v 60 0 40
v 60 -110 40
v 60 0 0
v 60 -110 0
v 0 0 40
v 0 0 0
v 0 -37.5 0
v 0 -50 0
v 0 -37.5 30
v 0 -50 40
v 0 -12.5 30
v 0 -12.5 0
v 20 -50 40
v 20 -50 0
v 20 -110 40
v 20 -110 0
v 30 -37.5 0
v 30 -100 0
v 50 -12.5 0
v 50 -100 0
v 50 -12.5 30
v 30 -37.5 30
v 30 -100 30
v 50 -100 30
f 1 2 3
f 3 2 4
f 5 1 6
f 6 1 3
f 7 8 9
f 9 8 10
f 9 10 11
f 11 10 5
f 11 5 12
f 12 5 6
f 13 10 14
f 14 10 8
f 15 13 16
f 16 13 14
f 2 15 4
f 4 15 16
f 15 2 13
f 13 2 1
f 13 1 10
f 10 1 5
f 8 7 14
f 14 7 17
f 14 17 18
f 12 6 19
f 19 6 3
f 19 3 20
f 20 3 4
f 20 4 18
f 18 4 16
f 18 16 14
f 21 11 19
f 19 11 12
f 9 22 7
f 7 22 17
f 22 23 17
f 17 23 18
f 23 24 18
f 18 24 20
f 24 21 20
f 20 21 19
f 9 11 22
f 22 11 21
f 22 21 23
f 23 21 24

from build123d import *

# Parameters (mm, degrees)
SKETCH_1_W          = 60
SKETCH_1_H          = 50
SKETCH_1_W_2        = 40
SKETCH_1_H_2        = 60
EXTRUDE_1_DEPTH     = 40
SKETCH_3_W          = 20
SKETCH_3_H          = 62.5
CUT_EXTRUDE_1_DEPTH = 30


with BuildPart() as part:
    # 스케치1 → 보스-돌출1 (new body)
    with BuildSketch(Plane.XY):
        with Locations((30, -25)):
            Rectangle(SKETCH_1_W, SKETCH_1_H)
        with Locations((40, -80)):
            Rectangle(SKETCH_1_W_2, SKETCH_1_H_2)
    extrude(amount=EXTRUDE_1_DEPTH)

    # 스케치3 → 컷-돌출1 (cut)
    with BuildSketch(Plane(origin=(0, 0, 0), x_dir=(-1, 0, 0), z_dir=(0, 0, -1))):
        Polygon((0, -37.5), (0, -12.5), (-50, -12.5), (-50, -37.5), (-30, -37.5), align=None)
        with Locations((-40, -68.75)):
            Rectangle(SKETCH_3_W, SKETCH_3_H)
    extrude(amount=-CUT_EXTRUDE_1_DEPTH, mode=Mode.SUBTRACT)


solid = part.part
